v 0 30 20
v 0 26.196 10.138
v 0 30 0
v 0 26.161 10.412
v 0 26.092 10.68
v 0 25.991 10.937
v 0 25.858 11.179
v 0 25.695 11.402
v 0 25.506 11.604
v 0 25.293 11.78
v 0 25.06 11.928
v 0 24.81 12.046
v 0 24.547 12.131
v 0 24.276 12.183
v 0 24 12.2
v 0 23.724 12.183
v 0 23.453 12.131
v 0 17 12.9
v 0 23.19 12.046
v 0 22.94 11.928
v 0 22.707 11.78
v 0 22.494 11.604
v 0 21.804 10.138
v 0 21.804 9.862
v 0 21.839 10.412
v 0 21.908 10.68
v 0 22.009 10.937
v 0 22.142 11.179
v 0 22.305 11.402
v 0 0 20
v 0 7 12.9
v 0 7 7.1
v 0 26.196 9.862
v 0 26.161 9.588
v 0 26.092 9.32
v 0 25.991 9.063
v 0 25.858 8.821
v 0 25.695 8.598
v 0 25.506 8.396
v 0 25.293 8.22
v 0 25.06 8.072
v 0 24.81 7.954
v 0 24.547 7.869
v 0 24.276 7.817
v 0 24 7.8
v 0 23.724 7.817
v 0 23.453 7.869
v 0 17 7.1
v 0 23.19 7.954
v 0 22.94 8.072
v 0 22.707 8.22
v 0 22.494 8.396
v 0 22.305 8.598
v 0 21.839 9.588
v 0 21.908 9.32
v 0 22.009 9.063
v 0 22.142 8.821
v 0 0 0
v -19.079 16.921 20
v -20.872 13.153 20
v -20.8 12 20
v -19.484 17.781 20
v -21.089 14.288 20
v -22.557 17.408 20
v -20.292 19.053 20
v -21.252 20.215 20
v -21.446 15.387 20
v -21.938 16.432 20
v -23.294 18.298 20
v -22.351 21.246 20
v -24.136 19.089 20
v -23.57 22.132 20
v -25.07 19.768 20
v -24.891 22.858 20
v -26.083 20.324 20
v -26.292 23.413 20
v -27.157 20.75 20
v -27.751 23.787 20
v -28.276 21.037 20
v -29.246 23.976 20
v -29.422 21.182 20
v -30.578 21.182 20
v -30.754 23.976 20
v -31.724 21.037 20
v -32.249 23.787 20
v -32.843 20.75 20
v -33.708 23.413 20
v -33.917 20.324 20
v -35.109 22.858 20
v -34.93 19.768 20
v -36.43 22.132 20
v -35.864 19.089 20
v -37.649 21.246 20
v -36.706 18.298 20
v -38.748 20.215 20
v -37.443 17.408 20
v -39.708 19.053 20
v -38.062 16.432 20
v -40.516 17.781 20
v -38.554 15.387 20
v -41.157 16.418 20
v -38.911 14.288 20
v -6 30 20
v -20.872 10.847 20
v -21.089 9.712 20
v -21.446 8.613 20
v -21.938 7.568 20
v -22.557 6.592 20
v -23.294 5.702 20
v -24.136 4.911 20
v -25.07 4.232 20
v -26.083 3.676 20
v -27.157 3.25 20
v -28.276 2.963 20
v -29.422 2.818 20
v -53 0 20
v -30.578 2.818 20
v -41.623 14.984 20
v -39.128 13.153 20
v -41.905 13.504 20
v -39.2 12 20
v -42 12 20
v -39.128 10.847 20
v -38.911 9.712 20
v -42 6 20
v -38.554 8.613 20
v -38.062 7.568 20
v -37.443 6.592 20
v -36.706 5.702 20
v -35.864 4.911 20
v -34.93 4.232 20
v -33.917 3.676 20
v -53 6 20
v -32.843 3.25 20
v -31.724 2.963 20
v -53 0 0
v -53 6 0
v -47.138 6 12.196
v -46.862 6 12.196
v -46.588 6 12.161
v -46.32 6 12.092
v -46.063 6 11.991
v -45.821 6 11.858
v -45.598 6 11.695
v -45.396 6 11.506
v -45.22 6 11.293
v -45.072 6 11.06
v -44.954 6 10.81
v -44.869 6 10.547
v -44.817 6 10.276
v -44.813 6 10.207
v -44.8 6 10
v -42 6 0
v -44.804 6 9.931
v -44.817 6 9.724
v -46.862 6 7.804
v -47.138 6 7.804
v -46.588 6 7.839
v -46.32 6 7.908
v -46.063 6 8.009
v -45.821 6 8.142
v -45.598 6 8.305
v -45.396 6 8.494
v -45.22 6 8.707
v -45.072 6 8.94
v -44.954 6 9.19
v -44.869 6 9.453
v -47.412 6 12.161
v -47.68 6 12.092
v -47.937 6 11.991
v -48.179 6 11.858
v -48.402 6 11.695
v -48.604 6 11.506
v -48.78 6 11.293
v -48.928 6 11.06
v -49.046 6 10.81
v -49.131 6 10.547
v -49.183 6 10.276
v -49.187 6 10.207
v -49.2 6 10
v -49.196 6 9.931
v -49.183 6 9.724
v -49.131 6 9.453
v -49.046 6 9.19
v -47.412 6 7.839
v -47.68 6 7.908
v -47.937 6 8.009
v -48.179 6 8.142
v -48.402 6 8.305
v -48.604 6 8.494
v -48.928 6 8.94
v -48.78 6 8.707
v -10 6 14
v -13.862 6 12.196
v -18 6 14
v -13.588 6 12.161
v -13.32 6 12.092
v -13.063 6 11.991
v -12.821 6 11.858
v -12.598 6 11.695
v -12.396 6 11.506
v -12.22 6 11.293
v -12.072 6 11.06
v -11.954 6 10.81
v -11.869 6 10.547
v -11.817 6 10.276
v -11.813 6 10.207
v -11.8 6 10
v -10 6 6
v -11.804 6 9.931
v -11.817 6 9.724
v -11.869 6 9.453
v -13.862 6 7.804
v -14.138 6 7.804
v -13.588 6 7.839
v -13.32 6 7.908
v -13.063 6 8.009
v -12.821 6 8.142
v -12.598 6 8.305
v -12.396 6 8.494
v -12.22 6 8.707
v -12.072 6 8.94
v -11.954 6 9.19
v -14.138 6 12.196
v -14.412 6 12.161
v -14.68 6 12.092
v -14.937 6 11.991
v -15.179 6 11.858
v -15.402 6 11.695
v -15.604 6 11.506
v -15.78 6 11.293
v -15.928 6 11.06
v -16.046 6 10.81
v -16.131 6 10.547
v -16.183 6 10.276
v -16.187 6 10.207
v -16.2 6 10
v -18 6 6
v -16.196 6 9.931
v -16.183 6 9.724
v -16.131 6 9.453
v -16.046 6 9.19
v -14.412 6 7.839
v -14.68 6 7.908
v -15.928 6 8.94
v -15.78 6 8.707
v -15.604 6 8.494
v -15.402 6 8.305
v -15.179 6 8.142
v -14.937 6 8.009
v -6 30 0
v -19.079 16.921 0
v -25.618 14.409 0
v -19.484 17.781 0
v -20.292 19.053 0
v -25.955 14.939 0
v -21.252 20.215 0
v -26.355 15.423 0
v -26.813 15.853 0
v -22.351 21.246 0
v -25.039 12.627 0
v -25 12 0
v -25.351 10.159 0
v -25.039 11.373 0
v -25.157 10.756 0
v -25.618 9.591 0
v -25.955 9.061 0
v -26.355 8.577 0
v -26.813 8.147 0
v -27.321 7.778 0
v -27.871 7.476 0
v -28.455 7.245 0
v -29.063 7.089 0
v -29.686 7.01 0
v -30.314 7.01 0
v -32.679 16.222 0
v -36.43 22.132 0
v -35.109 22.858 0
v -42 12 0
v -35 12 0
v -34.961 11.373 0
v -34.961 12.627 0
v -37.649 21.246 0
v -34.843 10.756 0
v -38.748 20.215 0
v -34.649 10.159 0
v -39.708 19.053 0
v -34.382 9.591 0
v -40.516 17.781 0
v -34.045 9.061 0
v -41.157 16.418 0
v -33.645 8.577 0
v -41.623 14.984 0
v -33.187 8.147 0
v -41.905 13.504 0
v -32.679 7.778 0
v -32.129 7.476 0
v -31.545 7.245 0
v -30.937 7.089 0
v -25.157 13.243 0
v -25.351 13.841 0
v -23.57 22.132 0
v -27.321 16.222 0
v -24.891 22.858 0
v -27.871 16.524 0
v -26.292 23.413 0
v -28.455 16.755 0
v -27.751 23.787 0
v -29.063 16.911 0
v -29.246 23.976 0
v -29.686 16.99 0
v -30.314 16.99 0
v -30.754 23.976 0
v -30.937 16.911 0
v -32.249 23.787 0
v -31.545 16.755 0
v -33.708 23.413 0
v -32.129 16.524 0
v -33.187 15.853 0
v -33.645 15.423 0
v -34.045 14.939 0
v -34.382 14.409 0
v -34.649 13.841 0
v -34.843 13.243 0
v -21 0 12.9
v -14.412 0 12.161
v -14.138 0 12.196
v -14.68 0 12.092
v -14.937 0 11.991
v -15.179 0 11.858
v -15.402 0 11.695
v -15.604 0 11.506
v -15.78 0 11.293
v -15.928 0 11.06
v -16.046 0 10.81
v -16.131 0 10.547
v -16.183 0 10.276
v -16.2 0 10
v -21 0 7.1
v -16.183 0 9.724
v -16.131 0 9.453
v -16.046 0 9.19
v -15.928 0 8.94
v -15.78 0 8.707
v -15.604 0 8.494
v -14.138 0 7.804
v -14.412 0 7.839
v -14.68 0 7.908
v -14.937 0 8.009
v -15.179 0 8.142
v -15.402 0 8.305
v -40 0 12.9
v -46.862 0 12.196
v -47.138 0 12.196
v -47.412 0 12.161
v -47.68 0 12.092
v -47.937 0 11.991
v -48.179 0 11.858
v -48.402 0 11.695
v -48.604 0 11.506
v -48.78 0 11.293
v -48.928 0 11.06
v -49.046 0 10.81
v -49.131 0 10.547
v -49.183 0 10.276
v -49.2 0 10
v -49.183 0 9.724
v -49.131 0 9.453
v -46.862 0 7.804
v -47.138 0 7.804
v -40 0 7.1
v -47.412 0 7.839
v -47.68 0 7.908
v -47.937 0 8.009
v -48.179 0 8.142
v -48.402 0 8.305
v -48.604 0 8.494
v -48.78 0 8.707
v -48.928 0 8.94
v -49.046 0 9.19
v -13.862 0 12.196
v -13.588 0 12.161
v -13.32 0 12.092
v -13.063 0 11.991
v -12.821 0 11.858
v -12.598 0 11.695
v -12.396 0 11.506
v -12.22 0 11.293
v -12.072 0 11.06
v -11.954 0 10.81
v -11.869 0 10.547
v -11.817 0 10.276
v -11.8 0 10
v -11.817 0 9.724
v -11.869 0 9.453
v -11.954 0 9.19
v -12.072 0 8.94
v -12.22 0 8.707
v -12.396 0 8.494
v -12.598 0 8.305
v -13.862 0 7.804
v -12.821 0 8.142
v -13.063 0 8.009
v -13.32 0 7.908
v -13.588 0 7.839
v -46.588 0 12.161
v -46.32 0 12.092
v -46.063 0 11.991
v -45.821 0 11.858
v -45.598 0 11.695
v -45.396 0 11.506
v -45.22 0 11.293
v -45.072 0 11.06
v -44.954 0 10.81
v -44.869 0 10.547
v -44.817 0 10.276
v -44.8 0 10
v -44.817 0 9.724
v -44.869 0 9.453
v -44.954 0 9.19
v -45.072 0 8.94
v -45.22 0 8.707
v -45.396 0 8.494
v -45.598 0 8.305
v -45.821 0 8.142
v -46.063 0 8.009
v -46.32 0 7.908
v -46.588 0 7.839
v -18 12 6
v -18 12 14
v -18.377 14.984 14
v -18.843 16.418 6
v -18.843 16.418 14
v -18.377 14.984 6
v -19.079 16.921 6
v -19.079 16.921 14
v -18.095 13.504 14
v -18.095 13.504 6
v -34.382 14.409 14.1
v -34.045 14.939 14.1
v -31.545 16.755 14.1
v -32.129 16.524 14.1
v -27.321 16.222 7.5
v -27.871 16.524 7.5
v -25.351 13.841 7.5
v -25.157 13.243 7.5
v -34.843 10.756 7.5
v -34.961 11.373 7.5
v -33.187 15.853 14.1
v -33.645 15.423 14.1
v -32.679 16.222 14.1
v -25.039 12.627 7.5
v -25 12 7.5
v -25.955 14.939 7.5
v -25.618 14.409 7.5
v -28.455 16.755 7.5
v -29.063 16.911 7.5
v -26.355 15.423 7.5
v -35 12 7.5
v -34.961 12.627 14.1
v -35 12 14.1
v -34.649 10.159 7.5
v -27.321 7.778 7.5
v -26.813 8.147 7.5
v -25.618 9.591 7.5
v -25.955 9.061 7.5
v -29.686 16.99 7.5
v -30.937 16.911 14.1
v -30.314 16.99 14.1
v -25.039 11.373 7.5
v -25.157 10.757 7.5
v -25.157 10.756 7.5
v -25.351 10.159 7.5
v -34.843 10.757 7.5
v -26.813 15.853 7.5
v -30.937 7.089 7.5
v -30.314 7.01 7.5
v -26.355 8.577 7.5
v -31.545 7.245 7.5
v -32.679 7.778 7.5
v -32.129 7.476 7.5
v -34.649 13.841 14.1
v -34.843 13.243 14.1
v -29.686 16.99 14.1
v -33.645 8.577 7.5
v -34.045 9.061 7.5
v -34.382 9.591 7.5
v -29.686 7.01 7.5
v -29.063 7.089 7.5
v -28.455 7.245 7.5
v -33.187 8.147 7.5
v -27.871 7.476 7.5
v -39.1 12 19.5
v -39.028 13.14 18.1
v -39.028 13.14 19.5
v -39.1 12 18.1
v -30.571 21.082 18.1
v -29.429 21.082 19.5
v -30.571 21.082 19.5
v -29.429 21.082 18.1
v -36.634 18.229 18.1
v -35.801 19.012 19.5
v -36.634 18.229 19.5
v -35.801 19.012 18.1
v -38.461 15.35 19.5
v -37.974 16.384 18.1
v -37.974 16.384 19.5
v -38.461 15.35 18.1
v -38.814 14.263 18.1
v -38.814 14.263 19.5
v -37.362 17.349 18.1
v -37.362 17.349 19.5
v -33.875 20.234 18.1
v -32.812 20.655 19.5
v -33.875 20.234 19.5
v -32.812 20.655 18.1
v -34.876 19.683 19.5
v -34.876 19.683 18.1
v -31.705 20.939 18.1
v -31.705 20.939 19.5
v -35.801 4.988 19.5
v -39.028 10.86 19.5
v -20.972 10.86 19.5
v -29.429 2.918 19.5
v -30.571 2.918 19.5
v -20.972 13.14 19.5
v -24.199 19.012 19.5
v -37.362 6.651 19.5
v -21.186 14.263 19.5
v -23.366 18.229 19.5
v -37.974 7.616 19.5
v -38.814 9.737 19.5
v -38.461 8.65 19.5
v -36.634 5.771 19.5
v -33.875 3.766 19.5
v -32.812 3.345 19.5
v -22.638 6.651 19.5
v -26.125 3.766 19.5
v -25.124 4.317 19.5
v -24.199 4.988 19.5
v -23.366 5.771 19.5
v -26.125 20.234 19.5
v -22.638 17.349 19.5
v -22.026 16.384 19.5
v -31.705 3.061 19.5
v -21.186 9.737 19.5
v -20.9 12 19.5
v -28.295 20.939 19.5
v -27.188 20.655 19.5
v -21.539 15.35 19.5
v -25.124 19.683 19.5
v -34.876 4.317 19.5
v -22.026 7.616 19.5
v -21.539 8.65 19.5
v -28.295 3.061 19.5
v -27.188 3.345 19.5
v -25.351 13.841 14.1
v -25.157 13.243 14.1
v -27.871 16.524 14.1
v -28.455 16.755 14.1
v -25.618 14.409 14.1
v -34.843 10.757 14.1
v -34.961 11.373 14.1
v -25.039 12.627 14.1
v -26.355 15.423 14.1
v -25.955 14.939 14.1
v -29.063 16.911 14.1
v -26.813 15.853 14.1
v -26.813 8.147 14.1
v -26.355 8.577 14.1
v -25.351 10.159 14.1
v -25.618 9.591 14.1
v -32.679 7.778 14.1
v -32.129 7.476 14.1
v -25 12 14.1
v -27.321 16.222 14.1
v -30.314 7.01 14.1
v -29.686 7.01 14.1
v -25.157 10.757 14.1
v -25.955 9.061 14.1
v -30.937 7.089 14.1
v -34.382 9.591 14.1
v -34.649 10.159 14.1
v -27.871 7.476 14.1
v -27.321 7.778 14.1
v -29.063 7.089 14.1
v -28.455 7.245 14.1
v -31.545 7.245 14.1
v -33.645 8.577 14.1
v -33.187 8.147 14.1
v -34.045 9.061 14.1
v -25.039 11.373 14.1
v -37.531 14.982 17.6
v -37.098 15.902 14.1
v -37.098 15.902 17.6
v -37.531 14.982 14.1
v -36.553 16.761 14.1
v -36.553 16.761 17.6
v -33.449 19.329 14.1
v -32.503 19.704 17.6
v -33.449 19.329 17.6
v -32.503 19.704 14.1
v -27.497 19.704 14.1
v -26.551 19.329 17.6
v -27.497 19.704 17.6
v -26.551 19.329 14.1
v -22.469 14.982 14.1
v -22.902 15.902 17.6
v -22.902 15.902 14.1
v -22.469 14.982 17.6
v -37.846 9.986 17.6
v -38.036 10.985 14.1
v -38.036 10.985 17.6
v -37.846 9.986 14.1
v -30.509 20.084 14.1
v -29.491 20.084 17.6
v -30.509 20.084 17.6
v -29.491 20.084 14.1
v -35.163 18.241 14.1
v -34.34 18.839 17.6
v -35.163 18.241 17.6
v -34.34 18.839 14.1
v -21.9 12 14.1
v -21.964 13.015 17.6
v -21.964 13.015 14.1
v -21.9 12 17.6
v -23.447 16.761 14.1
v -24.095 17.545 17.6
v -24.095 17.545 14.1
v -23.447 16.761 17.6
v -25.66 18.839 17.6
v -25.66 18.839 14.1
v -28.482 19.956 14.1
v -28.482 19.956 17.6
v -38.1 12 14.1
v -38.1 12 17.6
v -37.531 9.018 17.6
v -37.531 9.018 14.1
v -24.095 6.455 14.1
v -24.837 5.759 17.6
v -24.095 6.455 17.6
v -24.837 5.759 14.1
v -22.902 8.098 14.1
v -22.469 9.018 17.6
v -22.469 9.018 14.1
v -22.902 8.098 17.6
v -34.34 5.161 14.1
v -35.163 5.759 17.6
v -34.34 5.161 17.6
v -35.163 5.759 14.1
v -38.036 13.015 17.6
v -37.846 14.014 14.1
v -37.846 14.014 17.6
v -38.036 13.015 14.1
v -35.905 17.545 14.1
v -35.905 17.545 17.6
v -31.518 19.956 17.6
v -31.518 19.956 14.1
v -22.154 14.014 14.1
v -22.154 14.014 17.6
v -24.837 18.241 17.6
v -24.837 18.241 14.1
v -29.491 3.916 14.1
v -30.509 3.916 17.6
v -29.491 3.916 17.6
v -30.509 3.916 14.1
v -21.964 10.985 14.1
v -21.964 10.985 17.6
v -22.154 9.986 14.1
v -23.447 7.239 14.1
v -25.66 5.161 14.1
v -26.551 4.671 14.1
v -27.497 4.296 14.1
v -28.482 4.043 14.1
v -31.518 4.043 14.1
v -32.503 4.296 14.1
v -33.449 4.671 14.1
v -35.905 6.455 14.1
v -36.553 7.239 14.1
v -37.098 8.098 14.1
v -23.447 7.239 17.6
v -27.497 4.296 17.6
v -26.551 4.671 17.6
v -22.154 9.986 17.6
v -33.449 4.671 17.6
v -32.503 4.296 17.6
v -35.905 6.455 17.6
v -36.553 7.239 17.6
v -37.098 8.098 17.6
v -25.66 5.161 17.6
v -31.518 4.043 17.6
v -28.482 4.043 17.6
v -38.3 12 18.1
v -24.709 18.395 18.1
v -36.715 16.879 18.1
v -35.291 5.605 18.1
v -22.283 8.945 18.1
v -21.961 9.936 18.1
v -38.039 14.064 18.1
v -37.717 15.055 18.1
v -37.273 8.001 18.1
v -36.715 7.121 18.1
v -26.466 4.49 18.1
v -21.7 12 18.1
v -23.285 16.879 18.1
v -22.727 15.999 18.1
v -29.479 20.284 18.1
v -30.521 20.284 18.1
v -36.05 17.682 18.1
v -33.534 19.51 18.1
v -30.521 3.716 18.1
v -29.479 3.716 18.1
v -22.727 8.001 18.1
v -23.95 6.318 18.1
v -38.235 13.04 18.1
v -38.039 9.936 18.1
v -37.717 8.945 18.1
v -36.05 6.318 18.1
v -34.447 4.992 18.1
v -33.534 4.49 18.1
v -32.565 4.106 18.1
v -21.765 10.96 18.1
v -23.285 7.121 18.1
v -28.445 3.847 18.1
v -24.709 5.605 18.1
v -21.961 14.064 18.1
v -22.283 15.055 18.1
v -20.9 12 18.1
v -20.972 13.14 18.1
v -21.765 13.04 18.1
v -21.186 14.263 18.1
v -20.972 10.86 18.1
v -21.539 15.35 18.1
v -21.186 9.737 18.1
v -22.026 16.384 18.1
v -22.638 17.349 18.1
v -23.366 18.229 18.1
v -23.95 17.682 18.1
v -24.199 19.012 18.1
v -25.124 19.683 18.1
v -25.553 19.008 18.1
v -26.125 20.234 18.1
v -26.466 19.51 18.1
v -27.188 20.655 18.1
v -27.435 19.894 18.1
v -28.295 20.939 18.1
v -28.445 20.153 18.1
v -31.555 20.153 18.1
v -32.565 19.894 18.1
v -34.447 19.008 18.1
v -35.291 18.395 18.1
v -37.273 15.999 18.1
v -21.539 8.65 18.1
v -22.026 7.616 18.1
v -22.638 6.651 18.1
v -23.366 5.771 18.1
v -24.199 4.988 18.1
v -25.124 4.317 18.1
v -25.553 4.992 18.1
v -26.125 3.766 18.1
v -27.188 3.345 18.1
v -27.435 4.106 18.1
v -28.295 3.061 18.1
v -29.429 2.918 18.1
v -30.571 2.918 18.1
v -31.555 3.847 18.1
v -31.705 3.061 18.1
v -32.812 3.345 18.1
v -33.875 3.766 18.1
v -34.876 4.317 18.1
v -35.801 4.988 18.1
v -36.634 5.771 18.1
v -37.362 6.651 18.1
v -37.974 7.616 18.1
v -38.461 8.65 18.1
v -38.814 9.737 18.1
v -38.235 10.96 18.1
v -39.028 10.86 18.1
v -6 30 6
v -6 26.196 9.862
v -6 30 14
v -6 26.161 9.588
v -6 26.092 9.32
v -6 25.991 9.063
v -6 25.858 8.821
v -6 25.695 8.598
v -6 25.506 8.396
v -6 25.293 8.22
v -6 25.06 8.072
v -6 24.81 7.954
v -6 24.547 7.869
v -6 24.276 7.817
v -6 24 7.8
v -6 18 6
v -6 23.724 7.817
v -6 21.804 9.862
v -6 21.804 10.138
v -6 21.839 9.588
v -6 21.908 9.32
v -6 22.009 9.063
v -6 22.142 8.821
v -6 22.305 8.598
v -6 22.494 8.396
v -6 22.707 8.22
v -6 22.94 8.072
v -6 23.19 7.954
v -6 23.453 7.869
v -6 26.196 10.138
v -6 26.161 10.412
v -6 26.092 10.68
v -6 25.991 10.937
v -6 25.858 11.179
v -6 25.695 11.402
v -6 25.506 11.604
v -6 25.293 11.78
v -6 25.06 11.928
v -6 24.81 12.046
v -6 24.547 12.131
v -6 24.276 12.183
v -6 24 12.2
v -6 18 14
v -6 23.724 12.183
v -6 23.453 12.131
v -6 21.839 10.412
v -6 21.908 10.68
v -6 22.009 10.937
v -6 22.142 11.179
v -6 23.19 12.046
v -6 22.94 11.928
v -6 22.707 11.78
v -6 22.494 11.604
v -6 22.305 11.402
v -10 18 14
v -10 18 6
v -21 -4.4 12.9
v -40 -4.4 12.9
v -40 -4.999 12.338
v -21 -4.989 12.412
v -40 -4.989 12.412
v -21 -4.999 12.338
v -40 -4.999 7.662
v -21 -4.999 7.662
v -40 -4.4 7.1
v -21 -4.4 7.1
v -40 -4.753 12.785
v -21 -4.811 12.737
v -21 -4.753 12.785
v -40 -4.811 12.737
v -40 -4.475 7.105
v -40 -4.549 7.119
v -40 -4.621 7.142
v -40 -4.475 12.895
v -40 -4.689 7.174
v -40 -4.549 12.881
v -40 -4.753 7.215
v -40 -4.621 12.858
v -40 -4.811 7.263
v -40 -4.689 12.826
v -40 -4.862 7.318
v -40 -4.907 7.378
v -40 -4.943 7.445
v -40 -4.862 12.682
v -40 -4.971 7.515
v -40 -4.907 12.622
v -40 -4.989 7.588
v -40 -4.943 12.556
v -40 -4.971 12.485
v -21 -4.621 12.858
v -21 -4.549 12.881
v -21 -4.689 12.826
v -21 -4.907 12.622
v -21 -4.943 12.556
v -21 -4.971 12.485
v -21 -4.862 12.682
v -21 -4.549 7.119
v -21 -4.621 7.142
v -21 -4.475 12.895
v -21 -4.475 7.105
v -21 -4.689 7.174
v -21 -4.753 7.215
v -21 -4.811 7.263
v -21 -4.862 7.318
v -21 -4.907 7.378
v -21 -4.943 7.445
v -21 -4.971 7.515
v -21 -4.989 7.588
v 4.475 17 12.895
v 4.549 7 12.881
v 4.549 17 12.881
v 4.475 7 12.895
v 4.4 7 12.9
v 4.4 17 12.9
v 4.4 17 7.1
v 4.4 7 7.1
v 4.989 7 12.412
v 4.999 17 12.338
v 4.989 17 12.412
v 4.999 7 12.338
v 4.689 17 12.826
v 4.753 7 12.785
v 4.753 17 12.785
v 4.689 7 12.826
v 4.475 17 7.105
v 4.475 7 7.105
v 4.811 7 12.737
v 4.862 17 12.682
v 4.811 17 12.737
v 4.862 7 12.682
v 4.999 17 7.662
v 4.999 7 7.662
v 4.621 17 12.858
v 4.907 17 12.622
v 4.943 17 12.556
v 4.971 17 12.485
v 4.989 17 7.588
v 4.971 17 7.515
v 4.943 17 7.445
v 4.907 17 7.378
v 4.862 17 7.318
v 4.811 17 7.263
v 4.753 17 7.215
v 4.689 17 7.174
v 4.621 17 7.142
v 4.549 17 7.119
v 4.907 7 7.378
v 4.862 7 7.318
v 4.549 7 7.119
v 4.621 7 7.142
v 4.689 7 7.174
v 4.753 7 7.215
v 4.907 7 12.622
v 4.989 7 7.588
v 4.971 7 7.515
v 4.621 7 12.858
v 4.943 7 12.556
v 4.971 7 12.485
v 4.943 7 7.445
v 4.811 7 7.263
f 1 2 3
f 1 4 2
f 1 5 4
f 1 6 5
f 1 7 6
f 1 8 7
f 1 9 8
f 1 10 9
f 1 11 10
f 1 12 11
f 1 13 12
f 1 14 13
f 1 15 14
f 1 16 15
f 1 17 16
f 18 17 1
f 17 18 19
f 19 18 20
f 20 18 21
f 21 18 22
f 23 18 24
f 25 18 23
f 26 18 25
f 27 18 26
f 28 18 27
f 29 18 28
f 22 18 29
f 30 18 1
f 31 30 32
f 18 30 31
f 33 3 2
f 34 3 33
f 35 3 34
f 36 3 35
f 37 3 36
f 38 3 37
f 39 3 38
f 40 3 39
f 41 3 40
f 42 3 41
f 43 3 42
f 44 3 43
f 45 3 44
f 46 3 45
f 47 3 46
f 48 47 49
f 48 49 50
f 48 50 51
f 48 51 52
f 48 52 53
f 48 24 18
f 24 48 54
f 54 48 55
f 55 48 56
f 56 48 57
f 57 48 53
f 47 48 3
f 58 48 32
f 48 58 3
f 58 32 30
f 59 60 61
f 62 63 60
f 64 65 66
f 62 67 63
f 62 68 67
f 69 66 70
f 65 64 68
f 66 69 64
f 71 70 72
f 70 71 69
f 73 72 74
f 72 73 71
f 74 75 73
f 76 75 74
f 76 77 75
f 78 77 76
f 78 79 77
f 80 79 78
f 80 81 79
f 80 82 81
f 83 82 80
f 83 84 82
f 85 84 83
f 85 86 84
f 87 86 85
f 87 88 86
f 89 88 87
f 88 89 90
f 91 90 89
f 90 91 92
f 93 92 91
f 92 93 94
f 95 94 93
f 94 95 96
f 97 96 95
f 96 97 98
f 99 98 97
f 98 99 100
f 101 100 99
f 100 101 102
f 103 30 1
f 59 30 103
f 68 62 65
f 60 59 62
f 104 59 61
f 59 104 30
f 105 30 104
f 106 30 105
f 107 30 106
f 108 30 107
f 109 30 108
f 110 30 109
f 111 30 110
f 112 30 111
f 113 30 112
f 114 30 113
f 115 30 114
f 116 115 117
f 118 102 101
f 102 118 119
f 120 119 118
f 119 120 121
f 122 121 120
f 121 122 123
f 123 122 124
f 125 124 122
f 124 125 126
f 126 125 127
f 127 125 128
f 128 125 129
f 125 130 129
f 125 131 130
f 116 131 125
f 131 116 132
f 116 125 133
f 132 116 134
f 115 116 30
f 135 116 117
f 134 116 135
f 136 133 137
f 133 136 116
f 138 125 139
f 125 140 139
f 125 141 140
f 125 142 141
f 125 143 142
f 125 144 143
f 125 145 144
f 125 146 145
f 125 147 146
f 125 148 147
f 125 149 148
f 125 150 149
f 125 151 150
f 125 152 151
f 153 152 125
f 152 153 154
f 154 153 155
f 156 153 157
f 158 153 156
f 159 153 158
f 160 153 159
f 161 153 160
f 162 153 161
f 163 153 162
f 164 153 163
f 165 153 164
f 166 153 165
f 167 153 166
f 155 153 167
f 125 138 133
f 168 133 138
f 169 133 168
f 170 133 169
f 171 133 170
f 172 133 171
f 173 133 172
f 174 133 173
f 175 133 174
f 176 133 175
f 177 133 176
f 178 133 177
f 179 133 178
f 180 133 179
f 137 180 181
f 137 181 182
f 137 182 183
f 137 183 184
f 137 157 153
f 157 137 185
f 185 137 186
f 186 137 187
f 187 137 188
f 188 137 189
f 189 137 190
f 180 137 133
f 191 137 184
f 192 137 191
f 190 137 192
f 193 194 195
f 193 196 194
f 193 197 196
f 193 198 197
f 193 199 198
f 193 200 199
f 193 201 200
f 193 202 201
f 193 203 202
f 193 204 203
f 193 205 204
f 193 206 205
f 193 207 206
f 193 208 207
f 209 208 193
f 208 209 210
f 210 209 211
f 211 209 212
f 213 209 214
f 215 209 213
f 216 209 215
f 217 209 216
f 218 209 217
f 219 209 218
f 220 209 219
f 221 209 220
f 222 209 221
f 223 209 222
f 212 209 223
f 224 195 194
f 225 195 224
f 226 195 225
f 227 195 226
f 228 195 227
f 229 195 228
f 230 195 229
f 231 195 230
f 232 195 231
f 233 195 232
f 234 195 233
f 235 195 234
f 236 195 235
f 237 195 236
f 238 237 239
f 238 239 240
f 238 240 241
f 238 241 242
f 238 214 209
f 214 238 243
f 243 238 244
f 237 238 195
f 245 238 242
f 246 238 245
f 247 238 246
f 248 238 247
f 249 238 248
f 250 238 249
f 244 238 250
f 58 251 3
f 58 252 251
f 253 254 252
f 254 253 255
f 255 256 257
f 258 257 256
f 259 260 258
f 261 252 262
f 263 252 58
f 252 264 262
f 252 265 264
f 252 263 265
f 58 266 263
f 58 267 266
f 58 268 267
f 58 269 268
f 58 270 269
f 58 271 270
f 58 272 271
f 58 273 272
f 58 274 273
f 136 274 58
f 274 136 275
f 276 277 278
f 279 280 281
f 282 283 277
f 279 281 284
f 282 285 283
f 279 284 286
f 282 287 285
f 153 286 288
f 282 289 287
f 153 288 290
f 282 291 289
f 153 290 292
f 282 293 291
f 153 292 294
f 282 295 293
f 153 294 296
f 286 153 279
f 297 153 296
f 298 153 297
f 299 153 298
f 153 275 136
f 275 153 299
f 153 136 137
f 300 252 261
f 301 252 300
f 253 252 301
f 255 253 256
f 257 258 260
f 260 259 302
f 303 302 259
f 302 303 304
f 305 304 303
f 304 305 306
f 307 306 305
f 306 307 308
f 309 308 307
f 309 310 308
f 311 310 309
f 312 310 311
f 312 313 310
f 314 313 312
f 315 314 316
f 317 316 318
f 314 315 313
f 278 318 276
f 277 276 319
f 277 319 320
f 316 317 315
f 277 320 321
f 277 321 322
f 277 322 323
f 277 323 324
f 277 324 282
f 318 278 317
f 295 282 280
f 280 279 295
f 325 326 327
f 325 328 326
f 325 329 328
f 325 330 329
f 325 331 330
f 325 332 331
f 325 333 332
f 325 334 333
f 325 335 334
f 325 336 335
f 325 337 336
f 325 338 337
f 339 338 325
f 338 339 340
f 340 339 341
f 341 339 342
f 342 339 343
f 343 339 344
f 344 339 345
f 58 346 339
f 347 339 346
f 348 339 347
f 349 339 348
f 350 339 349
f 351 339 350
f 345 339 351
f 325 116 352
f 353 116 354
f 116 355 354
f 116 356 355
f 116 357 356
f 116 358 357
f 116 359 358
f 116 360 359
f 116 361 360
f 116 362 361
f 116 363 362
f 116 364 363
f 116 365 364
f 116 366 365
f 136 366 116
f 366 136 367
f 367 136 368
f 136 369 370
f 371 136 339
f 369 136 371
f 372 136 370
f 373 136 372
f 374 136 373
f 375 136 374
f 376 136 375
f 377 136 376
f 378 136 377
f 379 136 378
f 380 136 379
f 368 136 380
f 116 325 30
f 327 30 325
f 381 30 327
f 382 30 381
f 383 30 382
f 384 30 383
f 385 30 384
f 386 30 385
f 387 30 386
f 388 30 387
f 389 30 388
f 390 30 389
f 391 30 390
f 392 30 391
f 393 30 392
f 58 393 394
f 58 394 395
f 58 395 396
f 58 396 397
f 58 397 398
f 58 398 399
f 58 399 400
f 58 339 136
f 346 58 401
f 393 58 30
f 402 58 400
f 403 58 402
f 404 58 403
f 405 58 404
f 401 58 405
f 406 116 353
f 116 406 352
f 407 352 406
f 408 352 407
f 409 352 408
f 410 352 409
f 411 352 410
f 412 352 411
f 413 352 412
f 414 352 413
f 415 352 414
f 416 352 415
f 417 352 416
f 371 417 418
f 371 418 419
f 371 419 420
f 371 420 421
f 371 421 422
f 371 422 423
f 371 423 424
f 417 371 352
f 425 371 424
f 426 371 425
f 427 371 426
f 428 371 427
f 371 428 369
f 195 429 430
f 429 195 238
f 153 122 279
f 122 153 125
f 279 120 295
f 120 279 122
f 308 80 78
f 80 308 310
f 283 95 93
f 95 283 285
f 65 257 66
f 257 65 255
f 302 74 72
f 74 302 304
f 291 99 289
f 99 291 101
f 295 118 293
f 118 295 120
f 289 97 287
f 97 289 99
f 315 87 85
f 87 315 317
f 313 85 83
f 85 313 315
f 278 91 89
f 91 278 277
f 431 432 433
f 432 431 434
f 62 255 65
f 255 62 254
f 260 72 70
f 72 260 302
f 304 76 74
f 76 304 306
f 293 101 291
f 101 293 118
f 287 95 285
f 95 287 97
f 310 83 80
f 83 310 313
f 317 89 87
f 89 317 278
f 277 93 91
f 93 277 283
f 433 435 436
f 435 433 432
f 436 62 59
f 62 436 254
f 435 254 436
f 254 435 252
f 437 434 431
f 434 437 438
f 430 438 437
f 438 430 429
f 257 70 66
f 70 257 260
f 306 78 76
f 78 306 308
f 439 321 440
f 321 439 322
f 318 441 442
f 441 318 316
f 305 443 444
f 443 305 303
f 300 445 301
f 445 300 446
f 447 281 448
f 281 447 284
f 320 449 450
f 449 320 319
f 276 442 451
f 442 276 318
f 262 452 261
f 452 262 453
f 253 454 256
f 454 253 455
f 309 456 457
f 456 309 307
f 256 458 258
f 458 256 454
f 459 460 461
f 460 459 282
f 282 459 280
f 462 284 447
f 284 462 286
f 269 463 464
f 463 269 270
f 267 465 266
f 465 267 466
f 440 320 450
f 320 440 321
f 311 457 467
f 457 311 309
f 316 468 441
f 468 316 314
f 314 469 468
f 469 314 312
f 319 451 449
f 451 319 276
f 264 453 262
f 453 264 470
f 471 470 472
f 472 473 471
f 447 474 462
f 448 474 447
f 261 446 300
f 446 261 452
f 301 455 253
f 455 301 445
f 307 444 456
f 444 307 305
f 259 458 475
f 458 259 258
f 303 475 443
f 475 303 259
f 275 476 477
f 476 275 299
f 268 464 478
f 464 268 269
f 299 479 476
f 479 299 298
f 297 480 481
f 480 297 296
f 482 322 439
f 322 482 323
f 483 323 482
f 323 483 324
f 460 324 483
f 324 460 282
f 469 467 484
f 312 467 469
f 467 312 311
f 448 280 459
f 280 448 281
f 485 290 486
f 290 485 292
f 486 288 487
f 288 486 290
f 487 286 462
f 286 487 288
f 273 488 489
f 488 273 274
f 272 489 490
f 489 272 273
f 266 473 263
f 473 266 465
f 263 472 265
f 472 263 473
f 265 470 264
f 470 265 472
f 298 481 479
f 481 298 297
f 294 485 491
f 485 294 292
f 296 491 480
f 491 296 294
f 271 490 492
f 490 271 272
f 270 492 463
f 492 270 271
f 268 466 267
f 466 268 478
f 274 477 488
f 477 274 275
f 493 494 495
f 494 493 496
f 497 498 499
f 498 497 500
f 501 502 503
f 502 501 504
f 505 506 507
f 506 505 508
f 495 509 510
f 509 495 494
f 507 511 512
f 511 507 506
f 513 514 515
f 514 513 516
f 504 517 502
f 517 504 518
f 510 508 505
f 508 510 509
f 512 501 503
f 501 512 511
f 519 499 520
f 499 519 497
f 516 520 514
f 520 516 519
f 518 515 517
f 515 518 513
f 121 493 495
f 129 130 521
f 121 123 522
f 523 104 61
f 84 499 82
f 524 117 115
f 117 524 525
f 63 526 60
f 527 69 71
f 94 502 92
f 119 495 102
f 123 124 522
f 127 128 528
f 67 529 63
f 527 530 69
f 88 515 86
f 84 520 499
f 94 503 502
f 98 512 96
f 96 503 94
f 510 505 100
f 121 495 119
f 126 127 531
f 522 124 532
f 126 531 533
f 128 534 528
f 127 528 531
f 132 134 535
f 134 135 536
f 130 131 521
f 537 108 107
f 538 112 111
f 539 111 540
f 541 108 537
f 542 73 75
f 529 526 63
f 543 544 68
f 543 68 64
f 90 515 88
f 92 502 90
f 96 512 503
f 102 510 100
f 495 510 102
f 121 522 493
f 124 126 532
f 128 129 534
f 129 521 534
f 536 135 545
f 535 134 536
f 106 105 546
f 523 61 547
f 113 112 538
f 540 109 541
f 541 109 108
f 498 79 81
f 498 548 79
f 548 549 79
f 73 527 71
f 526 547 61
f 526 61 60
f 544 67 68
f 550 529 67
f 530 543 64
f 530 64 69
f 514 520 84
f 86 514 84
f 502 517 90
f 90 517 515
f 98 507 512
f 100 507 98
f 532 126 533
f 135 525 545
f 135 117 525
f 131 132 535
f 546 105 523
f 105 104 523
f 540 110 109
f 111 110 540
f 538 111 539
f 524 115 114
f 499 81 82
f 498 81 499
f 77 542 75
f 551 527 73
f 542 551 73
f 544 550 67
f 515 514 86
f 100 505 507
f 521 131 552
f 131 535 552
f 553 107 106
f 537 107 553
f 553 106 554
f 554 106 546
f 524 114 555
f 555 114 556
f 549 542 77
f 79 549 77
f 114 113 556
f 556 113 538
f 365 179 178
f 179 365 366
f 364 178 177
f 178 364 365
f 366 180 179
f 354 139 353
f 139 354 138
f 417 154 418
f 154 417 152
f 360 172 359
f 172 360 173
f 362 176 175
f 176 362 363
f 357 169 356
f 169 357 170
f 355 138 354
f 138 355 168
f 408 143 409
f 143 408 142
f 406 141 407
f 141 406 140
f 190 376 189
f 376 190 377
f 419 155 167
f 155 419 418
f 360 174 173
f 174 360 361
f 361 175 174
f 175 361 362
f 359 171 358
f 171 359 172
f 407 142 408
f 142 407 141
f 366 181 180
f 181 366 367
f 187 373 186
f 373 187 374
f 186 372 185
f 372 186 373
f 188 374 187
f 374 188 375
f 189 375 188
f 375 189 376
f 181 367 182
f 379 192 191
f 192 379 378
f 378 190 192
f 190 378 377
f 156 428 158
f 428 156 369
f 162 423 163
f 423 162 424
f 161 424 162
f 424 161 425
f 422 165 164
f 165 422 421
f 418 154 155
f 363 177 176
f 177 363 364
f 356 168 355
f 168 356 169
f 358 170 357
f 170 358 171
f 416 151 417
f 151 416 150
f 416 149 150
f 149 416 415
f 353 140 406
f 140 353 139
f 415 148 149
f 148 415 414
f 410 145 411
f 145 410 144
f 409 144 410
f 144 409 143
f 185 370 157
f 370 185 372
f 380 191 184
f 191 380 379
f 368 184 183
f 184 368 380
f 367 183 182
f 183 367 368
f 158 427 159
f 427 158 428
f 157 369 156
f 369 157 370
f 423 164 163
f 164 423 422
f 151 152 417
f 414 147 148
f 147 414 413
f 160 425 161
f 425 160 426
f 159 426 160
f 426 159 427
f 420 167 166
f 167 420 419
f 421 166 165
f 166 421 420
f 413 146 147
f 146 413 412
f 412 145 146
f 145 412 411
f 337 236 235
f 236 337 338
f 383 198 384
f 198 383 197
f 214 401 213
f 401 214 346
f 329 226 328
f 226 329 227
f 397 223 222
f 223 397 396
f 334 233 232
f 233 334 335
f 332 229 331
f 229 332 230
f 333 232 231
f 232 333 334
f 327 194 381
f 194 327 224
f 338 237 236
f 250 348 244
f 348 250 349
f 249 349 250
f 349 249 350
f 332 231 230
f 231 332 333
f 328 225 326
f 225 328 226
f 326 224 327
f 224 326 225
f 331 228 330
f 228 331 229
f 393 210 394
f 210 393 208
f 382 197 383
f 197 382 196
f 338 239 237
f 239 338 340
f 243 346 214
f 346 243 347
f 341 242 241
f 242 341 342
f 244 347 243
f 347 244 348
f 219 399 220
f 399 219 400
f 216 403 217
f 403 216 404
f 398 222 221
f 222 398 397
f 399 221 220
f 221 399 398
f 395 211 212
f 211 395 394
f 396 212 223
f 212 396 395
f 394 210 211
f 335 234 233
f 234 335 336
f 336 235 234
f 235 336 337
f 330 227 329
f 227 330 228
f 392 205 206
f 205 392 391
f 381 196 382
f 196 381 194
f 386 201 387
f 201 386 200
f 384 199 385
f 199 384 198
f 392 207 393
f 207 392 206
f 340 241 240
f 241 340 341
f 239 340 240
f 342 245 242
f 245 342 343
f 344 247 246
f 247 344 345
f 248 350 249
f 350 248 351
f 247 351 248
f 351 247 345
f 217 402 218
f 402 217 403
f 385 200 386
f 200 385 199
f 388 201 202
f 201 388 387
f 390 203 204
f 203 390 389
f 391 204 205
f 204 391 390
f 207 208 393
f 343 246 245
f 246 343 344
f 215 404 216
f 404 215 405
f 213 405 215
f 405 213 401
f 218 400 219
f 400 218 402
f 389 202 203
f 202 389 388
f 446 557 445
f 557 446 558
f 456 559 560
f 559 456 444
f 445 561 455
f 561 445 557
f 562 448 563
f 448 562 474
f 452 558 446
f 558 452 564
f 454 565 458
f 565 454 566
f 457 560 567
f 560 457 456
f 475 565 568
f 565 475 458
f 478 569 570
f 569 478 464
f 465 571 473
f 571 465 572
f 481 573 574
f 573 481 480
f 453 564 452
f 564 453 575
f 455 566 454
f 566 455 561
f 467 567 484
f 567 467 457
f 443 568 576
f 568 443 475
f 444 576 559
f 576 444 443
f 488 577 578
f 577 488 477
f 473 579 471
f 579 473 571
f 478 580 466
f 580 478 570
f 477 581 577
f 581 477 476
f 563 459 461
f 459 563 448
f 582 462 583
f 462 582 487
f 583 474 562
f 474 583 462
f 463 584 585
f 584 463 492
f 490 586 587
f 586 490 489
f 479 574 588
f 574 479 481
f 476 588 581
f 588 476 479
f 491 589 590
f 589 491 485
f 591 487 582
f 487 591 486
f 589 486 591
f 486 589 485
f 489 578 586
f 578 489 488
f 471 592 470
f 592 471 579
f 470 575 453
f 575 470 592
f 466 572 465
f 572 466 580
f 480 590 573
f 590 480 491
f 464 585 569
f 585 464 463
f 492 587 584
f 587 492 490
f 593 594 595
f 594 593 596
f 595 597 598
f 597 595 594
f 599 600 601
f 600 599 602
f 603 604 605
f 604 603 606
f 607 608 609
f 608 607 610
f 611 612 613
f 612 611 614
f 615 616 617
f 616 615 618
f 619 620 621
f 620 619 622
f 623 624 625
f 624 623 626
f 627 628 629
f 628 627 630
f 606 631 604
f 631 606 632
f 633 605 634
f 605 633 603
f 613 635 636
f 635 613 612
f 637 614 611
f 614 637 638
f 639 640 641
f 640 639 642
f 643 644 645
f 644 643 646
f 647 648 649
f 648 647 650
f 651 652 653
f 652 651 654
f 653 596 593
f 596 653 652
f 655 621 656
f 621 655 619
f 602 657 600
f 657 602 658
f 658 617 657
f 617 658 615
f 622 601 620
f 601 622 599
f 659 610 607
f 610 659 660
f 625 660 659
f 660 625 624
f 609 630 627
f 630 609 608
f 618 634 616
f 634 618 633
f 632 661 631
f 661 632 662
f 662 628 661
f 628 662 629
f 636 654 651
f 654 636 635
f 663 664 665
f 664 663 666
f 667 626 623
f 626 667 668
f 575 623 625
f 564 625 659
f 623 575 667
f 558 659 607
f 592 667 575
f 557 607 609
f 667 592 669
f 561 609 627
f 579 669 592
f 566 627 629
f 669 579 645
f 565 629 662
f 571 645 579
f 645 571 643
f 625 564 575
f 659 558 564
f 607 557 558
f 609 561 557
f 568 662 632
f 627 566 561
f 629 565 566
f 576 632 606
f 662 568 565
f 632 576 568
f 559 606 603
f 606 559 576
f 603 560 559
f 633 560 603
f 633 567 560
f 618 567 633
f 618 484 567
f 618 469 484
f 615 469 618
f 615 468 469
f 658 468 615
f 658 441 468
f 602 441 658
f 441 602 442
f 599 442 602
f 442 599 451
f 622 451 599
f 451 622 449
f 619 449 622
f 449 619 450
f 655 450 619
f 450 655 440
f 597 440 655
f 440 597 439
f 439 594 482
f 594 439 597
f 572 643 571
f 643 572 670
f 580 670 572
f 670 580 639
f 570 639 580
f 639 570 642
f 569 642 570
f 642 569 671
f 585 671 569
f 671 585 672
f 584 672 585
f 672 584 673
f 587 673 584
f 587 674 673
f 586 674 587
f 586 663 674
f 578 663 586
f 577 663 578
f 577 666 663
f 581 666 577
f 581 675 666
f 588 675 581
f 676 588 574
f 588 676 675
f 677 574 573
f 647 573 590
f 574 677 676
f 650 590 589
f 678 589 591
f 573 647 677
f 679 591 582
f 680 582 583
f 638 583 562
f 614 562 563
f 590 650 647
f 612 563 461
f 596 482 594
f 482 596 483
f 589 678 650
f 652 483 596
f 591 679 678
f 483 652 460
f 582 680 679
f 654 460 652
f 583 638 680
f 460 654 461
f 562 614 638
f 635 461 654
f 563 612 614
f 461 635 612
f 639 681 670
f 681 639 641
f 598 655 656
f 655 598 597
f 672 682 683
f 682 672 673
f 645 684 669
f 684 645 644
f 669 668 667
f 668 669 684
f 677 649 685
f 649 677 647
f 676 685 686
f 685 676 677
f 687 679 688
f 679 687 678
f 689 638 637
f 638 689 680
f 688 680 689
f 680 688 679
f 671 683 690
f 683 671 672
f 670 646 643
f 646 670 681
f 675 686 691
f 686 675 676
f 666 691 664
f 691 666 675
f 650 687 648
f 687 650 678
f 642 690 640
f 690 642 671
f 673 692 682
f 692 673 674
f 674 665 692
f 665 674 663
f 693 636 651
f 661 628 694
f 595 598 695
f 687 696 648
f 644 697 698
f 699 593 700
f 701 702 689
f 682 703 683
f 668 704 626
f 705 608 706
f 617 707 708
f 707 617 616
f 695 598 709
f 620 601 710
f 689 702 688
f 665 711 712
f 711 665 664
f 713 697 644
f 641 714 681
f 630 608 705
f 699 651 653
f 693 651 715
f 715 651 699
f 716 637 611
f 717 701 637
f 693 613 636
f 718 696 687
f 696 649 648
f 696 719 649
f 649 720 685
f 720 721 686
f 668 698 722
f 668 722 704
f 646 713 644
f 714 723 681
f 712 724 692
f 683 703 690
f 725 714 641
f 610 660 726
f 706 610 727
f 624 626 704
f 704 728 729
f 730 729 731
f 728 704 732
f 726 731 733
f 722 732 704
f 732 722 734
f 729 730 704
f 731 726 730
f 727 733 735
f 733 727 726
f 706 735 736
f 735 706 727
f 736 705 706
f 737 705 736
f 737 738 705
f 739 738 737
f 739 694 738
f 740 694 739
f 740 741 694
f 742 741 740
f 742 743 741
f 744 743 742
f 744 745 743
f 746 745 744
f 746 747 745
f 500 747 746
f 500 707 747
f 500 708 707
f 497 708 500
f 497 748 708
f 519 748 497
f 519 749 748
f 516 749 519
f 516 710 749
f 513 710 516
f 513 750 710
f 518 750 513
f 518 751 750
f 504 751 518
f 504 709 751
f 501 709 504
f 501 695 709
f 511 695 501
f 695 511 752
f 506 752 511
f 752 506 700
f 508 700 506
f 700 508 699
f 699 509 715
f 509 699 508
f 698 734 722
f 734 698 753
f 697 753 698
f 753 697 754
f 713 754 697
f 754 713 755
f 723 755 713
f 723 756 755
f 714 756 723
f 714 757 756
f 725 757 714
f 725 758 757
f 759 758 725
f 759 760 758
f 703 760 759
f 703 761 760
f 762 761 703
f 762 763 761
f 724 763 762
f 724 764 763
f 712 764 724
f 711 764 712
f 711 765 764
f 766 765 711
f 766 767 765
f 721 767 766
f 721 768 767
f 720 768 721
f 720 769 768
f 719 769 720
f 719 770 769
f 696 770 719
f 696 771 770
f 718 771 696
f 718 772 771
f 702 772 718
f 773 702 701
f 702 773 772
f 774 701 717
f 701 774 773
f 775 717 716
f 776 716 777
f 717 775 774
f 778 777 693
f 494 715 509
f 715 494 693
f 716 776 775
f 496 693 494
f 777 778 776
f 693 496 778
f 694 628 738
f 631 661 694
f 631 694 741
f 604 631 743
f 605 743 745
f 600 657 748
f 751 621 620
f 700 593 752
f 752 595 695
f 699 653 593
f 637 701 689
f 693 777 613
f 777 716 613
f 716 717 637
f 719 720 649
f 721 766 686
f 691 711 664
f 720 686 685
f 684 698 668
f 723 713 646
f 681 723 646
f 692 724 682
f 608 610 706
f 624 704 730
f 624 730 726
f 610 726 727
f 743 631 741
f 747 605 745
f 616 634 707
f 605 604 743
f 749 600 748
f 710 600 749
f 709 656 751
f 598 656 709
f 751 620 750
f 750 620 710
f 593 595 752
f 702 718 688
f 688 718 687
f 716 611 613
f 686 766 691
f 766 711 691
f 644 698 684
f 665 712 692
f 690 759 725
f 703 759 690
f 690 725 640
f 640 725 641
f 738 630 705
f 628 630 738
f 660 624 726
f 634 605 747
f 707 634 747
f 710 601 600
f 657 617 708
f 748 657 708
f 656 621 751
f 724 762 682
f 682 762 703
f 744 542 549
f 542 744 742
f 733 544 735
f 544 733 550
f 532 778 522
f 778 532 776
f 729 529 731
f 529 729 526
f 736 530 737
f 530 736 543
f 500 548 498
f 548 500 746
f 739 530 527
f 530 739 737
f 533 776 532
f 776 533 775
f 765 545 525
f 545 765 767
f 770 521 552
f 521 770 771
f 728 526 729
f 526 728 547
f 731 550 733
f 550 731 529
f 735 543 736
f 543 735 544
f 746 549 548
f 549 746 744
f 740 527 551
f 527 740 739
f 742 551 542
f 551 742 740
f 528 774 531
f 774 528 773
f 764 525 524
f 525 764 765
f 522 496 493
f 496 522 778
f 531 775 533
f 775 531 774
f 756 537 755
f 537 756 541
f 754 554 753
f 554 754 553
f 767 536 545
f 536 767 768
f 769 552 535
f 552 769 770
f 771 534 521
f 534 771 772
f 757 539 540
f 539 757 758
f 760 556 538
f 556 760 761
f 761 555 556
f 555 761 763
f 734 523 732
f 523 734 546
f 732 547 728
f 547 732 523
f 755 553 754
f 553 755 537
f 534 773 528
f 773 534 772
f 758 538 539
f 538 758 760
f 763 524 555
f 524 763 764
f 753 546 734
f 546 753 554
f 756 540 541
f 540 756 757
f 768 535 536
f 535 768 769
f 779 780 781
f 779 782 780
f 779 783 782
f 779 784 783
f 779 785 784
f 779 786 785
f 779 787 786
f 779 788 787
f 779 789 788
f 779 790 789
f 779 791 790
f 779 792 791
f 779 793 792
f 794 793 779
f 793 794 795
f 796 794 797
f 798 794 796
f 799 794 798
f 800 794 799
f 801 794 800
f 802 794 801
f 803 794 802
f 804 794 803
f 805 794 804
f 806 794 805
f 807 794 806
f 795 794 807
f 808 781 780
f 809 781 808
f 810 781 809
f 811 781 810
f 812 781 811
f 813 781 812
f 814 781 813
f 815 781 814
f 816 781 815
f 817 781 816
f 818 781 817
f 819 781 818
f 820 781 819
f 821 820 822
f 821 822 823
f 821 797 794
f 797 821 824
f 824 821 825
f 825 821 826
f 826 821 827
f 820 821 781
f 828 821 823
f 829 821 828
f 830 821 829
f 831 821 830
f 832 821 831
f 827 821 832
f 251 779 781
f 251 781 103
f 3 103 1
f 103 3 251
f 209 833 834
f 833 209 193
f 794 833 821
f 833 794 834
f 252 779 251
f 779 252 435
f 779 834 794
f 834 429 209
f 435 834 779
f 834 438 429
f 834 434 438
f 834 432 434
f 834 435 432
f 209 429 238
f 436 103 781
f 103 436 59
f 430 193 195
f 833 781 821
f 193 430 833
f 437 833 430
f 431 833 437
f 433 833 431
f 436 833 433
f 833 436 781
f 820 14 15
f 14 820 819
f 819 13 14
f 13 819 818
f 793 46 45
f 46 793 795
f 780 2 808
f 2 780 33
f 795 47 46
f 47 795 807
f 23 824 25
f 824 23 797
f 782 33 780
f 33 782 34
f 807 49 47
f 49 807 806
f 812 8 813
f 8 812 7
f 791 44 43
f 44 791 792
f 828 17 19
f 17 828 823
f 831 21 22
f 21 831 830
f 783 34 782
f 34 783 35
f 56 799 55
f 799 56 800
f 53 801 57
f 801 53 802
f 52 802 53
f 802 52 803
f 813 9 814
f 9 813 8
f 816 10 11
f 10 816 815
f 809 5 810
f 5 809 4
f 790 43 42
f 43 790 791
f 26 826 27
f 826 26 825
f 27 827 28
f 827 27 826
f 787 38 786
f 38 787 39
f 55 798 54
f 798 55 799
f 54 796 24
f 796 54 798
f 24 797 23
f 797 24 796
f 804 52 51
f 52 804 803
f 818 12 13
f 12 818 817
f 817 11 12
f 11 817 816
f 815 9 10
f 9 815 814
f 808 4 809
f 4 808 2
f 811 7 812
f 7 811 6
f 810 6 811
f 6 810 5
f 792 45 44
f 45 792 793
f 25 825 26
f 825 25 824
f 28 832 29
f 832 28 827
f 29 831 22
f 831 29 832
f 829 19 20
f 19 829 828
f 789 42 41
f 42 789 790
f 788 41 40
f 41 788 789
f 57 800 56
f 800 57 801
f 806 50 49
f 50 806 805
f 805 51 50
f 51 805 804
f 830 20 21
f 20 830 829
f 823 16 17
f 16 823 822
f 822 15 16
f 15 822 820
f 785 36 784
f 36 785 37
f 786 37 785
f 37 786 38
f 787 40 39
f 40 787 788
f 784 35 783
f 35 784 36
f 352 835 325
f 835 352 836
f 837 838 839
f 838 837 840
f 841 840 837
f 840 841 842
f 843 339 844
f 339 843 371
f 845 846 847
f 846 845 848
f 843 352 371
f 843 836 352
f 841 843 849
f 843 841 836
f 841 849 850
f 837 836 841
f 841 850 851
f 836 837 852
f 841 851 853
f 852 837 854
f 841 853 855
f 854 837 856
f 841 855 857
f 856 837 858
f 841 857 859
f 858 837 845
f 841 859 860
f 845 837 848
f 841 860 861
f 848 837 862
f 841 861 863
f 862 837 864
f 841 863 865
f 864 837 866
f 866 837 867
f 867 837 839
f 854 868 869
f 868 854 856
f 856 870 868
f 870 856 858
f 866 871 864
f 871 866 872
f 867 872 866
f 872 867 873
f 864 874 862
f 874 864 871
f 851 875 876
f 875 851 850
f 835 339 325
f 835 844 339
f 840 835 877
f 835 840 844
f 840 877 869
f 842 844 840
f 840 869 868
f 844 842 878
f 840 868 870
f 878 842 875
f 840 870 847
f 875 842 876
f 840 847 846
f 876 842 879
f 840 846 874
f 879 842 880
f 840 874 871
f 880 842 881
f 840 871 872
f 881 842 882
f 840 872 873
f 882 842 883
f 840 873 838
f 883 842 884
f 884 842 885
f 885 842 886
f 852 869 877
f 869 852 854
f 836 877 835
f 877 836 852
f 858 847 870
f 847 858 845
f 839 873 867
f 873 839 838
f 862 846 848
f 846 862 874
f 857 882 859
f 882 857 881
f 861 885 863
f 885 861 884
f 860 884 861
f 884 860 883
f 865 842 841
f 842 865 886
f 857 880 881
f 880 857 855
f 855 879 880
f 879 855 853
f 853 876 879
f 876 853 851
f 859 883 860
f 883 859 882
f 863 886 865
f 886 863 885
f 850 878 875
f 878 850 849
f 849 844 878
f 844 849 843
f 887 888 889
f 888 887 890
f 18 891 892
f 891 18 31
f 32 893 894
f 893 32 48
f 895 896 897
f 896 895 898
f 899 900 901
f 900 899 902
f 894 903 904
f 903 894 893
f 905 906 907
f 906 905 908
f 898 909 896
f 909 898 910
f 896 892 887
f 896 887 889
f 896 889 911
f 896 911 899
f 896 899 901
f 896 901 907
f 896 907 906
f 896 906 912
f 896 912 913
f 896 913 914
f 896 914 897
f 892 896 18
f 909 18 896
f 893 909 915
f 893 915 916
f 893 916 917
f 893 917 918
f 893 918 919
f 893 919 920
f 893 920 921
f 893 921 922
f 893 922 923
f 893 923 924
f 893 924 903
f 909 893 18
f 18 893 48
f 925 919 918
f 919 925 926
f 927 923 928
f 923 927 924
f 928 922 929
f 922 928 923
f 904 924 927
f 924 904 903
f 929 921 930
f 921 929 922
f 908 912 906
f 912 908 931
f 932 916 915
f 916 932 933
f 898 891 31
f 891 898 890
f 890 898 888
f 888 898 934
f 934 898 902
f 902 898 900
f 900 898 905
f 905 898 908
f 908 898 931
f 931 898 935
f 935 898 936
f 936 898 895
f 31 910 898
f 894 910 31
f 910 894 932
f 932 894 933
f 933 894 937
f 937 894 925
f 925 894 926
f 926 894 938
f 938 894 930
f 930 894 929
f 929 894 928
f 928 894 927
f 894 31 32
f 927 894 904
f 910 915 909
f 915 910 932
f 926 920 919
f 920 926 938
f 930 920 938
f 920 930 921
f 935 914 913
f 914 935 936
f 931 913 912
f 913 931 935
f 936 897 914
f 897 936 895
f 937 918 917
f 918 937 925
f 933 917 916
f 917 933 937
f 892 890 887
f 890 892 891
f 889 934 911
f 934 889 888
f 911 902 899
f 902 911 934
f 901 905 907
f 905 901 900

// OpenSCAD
// file: ../lib/nutsnbolts/data-access.scad
// Norm Nuts and Bolts - a OpenSCAD library
// Copyright (C) 2012  Johannes Kneer

// This program is free software: you can redistribute it and/or modify
// it under the terms of the GNU General Public License as published by
// the Free Software Foundation, either version 3 of the License, or
// (at your option) any later version.

// This program is distributed in the hope that it will be useful,
// but WITHOUT ANY WARRANTY; without even the implied warranty of
// MERCHANTABILITY or FITNESS FOR A PARTICULAR PURPOSE.  See the
// GNU General Public License for more details.

// You should have received a copy of the GNU General Public License
// along with this program.  If not, see <http://www.gnu.org/licenses/>.


// DATABASE ACCESS FUNCTIONS AND CONSTANTS



// == CONSTANTS ==

// screw table access keys
_NB_S_DESC            = 0;
_NB_S_FAMKEY			    = 1;
_NB_S_LENGTH          = 2;
_NB_S_NOTHREAD_LENGTH = 3;

_NB_F_DESC			      = 0;
_NB_F_OUTER_DIA       = 1;
_NB_F_INNER_DIA       = 2;
_NB_F_LEAD            = 3;
_NB_F_KEY             = 4;
_NB_F_KEY_DEPTH       = 5;
_NB_F_HEAD_HEIGHT     = 6;
_NB_F_HEAD_DIA        = 7;
_NB_F_NUT_KEY         = 8;
_NB_F_NUT_HEIGHT      = 9;
_NB_F_PITCH_FINE      = 10;
_NB_F_PITCH_MEDIUM    = 11;
_NB_F_PITCH_COARSE    = 12;


// == FUNCTIONS ==

// _get_screw("descriptor")   with descriptor = M8x25
//   find the line for a general object in the data matrix

function _get_screw(n) = data_screw[search([n], data_screw)[0]];
function _get_screw_fam(n) = data_screw_fam[search([_get_screw(n)[_NB_S_FAMKEY]], data_screw_fam)[0]];

function _get_fam(n) = data_screw_fam[search([n], data_screw_fam)[0]];


// _get_XXXXX("descriptor") functions
// find a single property in the database

function _get_desc(n)        = _get_screw(n)[_NB_S_DESC];
function _get_famkey(n)         = _get_screw(n)[_NB_S_FAMKEY];
function _get_length(n)      = _get_screw(n)[_NB_S_LENGTH];
function _get_nt_length(n)   = _get_screw(n)[_NB_S_NOTHREAD_LENGTH];

function _get_outer_dia(n)   = _get_screw_fam(n)[_NB_F_OUTER_DIA];
function _get_inner_dia(n)   = _get_screw_fam(n)[_NB_F_INNER_DIA];
function _get_lead(n)        = _get_screw_fam(n)[_NB_F_LEAD];
function _get_head_height(n) = _get_screw_fam(n)[_NB_F_HEAD_HEIGHT];
function _get_head_dia(n)    = _get_screw_fam(n)[_NB_F_HEAD_DIA];
function _get_nut_key(n)     = _get_screw_fam(n)[_NB_F_NUT_KEY];
function _get_nut_height(n)  = _get_screw_fam(n)[_NB_F_NUT_HEIGHT];
function _get_fine_pitch(n)  = _get_screw_fam(n)[_NB_F_PITCH_FINE];
function _get_medium_pitch(n)  = _get_screw_fam(n)[_NB_F_PITCH_MEDIUM];
function _get_coarse_pitch(n)  = _get_screw_fam(n)[_NB_F_PITCH_COARSE];
// file: ../globals.scad
// Global variables

$fn = 50;
clearance = 0.4; // Nozzle width
// file: f688zz.scad
include <../globals.scad>;

module f688zz_mount()
{
    difference(){
        cylinder(d=24,h=12);
        cylinder(d=10,h=12);
        translate([0,0,7-clearance])cylinder(d=16+clearance/2,h=12);
        translate([0,0,10.3-clearance/2])cylinder(d1=16+clearance/2,d2=16.4+clearance/2,h=0.5);
        translate([0,0,10.8-clearance/2])cylinder(d=18+clearance/2,h=12);
    }
} 
// main file
include <f688zz.scad>
include <../lib/nutsnbolts/cyl_head_bolt.scad>;

module gantry_y_back_right_front_left()
{
    mirror([1,0,0]){
        difference(){
            union(){
                cube([53,6,20]);
                translate([18,0,0])cube([24,12,20]);
                translate([30,12,0])cylinder(d=24,h=20);
            }
            translate([30,12,0])cylinder(d=10,h=7.5);
            translate([30,12,7.5])cylinder(d=18+clearance/2,h=12);
            translate([30,12,19.5])cylinder(d1=18+clearance/2,d2=18+clearance,h=0.5);
            translate([47,0,10])rotate([90,0,0])hole_through("M4",l=8, cld=clearance);
            translate([14,0,10])rotate([90,0,0])hole_through("M4",l=8, cld=clearance);
        }
        translate([30,12,7.5])f688zz_mount();
        
        intersection(){
            difference(){
                union(){
                    cube([6,30,20]);
                    cube([10,18,20]);
                    translate([6,-18,0])rotate([0,0,45])cube([24*sqrt(2),24*sqrt(2),6]);
                    translate([6,-18,14])rotate([0,0,45])cube([24*sqrt(2),24*sqrt(2),6]);
                }
                translate([0,24,10])rotate([0,-90,0])hole_through("M4",l=8, cld=clearance);
            }
            cube([20,30,20]);
        }      
            
        translate([40,-5,7.1])rotate([0,-90,0])translate([0.6,0.6,0])minkowski(){
            cube([4.6,4.4,18]);
            cylinder(d=1.2,h=1);
        }
        translate([0.6,17,7.1])rotate([0,-90,90])translate([0.6,0.6,0])minkowski(){
            cube([4.6,4.4,9]);
            cylinder(d=1.2,h=1);
        }
    }
}

gantry_y_back_right_front_left();
